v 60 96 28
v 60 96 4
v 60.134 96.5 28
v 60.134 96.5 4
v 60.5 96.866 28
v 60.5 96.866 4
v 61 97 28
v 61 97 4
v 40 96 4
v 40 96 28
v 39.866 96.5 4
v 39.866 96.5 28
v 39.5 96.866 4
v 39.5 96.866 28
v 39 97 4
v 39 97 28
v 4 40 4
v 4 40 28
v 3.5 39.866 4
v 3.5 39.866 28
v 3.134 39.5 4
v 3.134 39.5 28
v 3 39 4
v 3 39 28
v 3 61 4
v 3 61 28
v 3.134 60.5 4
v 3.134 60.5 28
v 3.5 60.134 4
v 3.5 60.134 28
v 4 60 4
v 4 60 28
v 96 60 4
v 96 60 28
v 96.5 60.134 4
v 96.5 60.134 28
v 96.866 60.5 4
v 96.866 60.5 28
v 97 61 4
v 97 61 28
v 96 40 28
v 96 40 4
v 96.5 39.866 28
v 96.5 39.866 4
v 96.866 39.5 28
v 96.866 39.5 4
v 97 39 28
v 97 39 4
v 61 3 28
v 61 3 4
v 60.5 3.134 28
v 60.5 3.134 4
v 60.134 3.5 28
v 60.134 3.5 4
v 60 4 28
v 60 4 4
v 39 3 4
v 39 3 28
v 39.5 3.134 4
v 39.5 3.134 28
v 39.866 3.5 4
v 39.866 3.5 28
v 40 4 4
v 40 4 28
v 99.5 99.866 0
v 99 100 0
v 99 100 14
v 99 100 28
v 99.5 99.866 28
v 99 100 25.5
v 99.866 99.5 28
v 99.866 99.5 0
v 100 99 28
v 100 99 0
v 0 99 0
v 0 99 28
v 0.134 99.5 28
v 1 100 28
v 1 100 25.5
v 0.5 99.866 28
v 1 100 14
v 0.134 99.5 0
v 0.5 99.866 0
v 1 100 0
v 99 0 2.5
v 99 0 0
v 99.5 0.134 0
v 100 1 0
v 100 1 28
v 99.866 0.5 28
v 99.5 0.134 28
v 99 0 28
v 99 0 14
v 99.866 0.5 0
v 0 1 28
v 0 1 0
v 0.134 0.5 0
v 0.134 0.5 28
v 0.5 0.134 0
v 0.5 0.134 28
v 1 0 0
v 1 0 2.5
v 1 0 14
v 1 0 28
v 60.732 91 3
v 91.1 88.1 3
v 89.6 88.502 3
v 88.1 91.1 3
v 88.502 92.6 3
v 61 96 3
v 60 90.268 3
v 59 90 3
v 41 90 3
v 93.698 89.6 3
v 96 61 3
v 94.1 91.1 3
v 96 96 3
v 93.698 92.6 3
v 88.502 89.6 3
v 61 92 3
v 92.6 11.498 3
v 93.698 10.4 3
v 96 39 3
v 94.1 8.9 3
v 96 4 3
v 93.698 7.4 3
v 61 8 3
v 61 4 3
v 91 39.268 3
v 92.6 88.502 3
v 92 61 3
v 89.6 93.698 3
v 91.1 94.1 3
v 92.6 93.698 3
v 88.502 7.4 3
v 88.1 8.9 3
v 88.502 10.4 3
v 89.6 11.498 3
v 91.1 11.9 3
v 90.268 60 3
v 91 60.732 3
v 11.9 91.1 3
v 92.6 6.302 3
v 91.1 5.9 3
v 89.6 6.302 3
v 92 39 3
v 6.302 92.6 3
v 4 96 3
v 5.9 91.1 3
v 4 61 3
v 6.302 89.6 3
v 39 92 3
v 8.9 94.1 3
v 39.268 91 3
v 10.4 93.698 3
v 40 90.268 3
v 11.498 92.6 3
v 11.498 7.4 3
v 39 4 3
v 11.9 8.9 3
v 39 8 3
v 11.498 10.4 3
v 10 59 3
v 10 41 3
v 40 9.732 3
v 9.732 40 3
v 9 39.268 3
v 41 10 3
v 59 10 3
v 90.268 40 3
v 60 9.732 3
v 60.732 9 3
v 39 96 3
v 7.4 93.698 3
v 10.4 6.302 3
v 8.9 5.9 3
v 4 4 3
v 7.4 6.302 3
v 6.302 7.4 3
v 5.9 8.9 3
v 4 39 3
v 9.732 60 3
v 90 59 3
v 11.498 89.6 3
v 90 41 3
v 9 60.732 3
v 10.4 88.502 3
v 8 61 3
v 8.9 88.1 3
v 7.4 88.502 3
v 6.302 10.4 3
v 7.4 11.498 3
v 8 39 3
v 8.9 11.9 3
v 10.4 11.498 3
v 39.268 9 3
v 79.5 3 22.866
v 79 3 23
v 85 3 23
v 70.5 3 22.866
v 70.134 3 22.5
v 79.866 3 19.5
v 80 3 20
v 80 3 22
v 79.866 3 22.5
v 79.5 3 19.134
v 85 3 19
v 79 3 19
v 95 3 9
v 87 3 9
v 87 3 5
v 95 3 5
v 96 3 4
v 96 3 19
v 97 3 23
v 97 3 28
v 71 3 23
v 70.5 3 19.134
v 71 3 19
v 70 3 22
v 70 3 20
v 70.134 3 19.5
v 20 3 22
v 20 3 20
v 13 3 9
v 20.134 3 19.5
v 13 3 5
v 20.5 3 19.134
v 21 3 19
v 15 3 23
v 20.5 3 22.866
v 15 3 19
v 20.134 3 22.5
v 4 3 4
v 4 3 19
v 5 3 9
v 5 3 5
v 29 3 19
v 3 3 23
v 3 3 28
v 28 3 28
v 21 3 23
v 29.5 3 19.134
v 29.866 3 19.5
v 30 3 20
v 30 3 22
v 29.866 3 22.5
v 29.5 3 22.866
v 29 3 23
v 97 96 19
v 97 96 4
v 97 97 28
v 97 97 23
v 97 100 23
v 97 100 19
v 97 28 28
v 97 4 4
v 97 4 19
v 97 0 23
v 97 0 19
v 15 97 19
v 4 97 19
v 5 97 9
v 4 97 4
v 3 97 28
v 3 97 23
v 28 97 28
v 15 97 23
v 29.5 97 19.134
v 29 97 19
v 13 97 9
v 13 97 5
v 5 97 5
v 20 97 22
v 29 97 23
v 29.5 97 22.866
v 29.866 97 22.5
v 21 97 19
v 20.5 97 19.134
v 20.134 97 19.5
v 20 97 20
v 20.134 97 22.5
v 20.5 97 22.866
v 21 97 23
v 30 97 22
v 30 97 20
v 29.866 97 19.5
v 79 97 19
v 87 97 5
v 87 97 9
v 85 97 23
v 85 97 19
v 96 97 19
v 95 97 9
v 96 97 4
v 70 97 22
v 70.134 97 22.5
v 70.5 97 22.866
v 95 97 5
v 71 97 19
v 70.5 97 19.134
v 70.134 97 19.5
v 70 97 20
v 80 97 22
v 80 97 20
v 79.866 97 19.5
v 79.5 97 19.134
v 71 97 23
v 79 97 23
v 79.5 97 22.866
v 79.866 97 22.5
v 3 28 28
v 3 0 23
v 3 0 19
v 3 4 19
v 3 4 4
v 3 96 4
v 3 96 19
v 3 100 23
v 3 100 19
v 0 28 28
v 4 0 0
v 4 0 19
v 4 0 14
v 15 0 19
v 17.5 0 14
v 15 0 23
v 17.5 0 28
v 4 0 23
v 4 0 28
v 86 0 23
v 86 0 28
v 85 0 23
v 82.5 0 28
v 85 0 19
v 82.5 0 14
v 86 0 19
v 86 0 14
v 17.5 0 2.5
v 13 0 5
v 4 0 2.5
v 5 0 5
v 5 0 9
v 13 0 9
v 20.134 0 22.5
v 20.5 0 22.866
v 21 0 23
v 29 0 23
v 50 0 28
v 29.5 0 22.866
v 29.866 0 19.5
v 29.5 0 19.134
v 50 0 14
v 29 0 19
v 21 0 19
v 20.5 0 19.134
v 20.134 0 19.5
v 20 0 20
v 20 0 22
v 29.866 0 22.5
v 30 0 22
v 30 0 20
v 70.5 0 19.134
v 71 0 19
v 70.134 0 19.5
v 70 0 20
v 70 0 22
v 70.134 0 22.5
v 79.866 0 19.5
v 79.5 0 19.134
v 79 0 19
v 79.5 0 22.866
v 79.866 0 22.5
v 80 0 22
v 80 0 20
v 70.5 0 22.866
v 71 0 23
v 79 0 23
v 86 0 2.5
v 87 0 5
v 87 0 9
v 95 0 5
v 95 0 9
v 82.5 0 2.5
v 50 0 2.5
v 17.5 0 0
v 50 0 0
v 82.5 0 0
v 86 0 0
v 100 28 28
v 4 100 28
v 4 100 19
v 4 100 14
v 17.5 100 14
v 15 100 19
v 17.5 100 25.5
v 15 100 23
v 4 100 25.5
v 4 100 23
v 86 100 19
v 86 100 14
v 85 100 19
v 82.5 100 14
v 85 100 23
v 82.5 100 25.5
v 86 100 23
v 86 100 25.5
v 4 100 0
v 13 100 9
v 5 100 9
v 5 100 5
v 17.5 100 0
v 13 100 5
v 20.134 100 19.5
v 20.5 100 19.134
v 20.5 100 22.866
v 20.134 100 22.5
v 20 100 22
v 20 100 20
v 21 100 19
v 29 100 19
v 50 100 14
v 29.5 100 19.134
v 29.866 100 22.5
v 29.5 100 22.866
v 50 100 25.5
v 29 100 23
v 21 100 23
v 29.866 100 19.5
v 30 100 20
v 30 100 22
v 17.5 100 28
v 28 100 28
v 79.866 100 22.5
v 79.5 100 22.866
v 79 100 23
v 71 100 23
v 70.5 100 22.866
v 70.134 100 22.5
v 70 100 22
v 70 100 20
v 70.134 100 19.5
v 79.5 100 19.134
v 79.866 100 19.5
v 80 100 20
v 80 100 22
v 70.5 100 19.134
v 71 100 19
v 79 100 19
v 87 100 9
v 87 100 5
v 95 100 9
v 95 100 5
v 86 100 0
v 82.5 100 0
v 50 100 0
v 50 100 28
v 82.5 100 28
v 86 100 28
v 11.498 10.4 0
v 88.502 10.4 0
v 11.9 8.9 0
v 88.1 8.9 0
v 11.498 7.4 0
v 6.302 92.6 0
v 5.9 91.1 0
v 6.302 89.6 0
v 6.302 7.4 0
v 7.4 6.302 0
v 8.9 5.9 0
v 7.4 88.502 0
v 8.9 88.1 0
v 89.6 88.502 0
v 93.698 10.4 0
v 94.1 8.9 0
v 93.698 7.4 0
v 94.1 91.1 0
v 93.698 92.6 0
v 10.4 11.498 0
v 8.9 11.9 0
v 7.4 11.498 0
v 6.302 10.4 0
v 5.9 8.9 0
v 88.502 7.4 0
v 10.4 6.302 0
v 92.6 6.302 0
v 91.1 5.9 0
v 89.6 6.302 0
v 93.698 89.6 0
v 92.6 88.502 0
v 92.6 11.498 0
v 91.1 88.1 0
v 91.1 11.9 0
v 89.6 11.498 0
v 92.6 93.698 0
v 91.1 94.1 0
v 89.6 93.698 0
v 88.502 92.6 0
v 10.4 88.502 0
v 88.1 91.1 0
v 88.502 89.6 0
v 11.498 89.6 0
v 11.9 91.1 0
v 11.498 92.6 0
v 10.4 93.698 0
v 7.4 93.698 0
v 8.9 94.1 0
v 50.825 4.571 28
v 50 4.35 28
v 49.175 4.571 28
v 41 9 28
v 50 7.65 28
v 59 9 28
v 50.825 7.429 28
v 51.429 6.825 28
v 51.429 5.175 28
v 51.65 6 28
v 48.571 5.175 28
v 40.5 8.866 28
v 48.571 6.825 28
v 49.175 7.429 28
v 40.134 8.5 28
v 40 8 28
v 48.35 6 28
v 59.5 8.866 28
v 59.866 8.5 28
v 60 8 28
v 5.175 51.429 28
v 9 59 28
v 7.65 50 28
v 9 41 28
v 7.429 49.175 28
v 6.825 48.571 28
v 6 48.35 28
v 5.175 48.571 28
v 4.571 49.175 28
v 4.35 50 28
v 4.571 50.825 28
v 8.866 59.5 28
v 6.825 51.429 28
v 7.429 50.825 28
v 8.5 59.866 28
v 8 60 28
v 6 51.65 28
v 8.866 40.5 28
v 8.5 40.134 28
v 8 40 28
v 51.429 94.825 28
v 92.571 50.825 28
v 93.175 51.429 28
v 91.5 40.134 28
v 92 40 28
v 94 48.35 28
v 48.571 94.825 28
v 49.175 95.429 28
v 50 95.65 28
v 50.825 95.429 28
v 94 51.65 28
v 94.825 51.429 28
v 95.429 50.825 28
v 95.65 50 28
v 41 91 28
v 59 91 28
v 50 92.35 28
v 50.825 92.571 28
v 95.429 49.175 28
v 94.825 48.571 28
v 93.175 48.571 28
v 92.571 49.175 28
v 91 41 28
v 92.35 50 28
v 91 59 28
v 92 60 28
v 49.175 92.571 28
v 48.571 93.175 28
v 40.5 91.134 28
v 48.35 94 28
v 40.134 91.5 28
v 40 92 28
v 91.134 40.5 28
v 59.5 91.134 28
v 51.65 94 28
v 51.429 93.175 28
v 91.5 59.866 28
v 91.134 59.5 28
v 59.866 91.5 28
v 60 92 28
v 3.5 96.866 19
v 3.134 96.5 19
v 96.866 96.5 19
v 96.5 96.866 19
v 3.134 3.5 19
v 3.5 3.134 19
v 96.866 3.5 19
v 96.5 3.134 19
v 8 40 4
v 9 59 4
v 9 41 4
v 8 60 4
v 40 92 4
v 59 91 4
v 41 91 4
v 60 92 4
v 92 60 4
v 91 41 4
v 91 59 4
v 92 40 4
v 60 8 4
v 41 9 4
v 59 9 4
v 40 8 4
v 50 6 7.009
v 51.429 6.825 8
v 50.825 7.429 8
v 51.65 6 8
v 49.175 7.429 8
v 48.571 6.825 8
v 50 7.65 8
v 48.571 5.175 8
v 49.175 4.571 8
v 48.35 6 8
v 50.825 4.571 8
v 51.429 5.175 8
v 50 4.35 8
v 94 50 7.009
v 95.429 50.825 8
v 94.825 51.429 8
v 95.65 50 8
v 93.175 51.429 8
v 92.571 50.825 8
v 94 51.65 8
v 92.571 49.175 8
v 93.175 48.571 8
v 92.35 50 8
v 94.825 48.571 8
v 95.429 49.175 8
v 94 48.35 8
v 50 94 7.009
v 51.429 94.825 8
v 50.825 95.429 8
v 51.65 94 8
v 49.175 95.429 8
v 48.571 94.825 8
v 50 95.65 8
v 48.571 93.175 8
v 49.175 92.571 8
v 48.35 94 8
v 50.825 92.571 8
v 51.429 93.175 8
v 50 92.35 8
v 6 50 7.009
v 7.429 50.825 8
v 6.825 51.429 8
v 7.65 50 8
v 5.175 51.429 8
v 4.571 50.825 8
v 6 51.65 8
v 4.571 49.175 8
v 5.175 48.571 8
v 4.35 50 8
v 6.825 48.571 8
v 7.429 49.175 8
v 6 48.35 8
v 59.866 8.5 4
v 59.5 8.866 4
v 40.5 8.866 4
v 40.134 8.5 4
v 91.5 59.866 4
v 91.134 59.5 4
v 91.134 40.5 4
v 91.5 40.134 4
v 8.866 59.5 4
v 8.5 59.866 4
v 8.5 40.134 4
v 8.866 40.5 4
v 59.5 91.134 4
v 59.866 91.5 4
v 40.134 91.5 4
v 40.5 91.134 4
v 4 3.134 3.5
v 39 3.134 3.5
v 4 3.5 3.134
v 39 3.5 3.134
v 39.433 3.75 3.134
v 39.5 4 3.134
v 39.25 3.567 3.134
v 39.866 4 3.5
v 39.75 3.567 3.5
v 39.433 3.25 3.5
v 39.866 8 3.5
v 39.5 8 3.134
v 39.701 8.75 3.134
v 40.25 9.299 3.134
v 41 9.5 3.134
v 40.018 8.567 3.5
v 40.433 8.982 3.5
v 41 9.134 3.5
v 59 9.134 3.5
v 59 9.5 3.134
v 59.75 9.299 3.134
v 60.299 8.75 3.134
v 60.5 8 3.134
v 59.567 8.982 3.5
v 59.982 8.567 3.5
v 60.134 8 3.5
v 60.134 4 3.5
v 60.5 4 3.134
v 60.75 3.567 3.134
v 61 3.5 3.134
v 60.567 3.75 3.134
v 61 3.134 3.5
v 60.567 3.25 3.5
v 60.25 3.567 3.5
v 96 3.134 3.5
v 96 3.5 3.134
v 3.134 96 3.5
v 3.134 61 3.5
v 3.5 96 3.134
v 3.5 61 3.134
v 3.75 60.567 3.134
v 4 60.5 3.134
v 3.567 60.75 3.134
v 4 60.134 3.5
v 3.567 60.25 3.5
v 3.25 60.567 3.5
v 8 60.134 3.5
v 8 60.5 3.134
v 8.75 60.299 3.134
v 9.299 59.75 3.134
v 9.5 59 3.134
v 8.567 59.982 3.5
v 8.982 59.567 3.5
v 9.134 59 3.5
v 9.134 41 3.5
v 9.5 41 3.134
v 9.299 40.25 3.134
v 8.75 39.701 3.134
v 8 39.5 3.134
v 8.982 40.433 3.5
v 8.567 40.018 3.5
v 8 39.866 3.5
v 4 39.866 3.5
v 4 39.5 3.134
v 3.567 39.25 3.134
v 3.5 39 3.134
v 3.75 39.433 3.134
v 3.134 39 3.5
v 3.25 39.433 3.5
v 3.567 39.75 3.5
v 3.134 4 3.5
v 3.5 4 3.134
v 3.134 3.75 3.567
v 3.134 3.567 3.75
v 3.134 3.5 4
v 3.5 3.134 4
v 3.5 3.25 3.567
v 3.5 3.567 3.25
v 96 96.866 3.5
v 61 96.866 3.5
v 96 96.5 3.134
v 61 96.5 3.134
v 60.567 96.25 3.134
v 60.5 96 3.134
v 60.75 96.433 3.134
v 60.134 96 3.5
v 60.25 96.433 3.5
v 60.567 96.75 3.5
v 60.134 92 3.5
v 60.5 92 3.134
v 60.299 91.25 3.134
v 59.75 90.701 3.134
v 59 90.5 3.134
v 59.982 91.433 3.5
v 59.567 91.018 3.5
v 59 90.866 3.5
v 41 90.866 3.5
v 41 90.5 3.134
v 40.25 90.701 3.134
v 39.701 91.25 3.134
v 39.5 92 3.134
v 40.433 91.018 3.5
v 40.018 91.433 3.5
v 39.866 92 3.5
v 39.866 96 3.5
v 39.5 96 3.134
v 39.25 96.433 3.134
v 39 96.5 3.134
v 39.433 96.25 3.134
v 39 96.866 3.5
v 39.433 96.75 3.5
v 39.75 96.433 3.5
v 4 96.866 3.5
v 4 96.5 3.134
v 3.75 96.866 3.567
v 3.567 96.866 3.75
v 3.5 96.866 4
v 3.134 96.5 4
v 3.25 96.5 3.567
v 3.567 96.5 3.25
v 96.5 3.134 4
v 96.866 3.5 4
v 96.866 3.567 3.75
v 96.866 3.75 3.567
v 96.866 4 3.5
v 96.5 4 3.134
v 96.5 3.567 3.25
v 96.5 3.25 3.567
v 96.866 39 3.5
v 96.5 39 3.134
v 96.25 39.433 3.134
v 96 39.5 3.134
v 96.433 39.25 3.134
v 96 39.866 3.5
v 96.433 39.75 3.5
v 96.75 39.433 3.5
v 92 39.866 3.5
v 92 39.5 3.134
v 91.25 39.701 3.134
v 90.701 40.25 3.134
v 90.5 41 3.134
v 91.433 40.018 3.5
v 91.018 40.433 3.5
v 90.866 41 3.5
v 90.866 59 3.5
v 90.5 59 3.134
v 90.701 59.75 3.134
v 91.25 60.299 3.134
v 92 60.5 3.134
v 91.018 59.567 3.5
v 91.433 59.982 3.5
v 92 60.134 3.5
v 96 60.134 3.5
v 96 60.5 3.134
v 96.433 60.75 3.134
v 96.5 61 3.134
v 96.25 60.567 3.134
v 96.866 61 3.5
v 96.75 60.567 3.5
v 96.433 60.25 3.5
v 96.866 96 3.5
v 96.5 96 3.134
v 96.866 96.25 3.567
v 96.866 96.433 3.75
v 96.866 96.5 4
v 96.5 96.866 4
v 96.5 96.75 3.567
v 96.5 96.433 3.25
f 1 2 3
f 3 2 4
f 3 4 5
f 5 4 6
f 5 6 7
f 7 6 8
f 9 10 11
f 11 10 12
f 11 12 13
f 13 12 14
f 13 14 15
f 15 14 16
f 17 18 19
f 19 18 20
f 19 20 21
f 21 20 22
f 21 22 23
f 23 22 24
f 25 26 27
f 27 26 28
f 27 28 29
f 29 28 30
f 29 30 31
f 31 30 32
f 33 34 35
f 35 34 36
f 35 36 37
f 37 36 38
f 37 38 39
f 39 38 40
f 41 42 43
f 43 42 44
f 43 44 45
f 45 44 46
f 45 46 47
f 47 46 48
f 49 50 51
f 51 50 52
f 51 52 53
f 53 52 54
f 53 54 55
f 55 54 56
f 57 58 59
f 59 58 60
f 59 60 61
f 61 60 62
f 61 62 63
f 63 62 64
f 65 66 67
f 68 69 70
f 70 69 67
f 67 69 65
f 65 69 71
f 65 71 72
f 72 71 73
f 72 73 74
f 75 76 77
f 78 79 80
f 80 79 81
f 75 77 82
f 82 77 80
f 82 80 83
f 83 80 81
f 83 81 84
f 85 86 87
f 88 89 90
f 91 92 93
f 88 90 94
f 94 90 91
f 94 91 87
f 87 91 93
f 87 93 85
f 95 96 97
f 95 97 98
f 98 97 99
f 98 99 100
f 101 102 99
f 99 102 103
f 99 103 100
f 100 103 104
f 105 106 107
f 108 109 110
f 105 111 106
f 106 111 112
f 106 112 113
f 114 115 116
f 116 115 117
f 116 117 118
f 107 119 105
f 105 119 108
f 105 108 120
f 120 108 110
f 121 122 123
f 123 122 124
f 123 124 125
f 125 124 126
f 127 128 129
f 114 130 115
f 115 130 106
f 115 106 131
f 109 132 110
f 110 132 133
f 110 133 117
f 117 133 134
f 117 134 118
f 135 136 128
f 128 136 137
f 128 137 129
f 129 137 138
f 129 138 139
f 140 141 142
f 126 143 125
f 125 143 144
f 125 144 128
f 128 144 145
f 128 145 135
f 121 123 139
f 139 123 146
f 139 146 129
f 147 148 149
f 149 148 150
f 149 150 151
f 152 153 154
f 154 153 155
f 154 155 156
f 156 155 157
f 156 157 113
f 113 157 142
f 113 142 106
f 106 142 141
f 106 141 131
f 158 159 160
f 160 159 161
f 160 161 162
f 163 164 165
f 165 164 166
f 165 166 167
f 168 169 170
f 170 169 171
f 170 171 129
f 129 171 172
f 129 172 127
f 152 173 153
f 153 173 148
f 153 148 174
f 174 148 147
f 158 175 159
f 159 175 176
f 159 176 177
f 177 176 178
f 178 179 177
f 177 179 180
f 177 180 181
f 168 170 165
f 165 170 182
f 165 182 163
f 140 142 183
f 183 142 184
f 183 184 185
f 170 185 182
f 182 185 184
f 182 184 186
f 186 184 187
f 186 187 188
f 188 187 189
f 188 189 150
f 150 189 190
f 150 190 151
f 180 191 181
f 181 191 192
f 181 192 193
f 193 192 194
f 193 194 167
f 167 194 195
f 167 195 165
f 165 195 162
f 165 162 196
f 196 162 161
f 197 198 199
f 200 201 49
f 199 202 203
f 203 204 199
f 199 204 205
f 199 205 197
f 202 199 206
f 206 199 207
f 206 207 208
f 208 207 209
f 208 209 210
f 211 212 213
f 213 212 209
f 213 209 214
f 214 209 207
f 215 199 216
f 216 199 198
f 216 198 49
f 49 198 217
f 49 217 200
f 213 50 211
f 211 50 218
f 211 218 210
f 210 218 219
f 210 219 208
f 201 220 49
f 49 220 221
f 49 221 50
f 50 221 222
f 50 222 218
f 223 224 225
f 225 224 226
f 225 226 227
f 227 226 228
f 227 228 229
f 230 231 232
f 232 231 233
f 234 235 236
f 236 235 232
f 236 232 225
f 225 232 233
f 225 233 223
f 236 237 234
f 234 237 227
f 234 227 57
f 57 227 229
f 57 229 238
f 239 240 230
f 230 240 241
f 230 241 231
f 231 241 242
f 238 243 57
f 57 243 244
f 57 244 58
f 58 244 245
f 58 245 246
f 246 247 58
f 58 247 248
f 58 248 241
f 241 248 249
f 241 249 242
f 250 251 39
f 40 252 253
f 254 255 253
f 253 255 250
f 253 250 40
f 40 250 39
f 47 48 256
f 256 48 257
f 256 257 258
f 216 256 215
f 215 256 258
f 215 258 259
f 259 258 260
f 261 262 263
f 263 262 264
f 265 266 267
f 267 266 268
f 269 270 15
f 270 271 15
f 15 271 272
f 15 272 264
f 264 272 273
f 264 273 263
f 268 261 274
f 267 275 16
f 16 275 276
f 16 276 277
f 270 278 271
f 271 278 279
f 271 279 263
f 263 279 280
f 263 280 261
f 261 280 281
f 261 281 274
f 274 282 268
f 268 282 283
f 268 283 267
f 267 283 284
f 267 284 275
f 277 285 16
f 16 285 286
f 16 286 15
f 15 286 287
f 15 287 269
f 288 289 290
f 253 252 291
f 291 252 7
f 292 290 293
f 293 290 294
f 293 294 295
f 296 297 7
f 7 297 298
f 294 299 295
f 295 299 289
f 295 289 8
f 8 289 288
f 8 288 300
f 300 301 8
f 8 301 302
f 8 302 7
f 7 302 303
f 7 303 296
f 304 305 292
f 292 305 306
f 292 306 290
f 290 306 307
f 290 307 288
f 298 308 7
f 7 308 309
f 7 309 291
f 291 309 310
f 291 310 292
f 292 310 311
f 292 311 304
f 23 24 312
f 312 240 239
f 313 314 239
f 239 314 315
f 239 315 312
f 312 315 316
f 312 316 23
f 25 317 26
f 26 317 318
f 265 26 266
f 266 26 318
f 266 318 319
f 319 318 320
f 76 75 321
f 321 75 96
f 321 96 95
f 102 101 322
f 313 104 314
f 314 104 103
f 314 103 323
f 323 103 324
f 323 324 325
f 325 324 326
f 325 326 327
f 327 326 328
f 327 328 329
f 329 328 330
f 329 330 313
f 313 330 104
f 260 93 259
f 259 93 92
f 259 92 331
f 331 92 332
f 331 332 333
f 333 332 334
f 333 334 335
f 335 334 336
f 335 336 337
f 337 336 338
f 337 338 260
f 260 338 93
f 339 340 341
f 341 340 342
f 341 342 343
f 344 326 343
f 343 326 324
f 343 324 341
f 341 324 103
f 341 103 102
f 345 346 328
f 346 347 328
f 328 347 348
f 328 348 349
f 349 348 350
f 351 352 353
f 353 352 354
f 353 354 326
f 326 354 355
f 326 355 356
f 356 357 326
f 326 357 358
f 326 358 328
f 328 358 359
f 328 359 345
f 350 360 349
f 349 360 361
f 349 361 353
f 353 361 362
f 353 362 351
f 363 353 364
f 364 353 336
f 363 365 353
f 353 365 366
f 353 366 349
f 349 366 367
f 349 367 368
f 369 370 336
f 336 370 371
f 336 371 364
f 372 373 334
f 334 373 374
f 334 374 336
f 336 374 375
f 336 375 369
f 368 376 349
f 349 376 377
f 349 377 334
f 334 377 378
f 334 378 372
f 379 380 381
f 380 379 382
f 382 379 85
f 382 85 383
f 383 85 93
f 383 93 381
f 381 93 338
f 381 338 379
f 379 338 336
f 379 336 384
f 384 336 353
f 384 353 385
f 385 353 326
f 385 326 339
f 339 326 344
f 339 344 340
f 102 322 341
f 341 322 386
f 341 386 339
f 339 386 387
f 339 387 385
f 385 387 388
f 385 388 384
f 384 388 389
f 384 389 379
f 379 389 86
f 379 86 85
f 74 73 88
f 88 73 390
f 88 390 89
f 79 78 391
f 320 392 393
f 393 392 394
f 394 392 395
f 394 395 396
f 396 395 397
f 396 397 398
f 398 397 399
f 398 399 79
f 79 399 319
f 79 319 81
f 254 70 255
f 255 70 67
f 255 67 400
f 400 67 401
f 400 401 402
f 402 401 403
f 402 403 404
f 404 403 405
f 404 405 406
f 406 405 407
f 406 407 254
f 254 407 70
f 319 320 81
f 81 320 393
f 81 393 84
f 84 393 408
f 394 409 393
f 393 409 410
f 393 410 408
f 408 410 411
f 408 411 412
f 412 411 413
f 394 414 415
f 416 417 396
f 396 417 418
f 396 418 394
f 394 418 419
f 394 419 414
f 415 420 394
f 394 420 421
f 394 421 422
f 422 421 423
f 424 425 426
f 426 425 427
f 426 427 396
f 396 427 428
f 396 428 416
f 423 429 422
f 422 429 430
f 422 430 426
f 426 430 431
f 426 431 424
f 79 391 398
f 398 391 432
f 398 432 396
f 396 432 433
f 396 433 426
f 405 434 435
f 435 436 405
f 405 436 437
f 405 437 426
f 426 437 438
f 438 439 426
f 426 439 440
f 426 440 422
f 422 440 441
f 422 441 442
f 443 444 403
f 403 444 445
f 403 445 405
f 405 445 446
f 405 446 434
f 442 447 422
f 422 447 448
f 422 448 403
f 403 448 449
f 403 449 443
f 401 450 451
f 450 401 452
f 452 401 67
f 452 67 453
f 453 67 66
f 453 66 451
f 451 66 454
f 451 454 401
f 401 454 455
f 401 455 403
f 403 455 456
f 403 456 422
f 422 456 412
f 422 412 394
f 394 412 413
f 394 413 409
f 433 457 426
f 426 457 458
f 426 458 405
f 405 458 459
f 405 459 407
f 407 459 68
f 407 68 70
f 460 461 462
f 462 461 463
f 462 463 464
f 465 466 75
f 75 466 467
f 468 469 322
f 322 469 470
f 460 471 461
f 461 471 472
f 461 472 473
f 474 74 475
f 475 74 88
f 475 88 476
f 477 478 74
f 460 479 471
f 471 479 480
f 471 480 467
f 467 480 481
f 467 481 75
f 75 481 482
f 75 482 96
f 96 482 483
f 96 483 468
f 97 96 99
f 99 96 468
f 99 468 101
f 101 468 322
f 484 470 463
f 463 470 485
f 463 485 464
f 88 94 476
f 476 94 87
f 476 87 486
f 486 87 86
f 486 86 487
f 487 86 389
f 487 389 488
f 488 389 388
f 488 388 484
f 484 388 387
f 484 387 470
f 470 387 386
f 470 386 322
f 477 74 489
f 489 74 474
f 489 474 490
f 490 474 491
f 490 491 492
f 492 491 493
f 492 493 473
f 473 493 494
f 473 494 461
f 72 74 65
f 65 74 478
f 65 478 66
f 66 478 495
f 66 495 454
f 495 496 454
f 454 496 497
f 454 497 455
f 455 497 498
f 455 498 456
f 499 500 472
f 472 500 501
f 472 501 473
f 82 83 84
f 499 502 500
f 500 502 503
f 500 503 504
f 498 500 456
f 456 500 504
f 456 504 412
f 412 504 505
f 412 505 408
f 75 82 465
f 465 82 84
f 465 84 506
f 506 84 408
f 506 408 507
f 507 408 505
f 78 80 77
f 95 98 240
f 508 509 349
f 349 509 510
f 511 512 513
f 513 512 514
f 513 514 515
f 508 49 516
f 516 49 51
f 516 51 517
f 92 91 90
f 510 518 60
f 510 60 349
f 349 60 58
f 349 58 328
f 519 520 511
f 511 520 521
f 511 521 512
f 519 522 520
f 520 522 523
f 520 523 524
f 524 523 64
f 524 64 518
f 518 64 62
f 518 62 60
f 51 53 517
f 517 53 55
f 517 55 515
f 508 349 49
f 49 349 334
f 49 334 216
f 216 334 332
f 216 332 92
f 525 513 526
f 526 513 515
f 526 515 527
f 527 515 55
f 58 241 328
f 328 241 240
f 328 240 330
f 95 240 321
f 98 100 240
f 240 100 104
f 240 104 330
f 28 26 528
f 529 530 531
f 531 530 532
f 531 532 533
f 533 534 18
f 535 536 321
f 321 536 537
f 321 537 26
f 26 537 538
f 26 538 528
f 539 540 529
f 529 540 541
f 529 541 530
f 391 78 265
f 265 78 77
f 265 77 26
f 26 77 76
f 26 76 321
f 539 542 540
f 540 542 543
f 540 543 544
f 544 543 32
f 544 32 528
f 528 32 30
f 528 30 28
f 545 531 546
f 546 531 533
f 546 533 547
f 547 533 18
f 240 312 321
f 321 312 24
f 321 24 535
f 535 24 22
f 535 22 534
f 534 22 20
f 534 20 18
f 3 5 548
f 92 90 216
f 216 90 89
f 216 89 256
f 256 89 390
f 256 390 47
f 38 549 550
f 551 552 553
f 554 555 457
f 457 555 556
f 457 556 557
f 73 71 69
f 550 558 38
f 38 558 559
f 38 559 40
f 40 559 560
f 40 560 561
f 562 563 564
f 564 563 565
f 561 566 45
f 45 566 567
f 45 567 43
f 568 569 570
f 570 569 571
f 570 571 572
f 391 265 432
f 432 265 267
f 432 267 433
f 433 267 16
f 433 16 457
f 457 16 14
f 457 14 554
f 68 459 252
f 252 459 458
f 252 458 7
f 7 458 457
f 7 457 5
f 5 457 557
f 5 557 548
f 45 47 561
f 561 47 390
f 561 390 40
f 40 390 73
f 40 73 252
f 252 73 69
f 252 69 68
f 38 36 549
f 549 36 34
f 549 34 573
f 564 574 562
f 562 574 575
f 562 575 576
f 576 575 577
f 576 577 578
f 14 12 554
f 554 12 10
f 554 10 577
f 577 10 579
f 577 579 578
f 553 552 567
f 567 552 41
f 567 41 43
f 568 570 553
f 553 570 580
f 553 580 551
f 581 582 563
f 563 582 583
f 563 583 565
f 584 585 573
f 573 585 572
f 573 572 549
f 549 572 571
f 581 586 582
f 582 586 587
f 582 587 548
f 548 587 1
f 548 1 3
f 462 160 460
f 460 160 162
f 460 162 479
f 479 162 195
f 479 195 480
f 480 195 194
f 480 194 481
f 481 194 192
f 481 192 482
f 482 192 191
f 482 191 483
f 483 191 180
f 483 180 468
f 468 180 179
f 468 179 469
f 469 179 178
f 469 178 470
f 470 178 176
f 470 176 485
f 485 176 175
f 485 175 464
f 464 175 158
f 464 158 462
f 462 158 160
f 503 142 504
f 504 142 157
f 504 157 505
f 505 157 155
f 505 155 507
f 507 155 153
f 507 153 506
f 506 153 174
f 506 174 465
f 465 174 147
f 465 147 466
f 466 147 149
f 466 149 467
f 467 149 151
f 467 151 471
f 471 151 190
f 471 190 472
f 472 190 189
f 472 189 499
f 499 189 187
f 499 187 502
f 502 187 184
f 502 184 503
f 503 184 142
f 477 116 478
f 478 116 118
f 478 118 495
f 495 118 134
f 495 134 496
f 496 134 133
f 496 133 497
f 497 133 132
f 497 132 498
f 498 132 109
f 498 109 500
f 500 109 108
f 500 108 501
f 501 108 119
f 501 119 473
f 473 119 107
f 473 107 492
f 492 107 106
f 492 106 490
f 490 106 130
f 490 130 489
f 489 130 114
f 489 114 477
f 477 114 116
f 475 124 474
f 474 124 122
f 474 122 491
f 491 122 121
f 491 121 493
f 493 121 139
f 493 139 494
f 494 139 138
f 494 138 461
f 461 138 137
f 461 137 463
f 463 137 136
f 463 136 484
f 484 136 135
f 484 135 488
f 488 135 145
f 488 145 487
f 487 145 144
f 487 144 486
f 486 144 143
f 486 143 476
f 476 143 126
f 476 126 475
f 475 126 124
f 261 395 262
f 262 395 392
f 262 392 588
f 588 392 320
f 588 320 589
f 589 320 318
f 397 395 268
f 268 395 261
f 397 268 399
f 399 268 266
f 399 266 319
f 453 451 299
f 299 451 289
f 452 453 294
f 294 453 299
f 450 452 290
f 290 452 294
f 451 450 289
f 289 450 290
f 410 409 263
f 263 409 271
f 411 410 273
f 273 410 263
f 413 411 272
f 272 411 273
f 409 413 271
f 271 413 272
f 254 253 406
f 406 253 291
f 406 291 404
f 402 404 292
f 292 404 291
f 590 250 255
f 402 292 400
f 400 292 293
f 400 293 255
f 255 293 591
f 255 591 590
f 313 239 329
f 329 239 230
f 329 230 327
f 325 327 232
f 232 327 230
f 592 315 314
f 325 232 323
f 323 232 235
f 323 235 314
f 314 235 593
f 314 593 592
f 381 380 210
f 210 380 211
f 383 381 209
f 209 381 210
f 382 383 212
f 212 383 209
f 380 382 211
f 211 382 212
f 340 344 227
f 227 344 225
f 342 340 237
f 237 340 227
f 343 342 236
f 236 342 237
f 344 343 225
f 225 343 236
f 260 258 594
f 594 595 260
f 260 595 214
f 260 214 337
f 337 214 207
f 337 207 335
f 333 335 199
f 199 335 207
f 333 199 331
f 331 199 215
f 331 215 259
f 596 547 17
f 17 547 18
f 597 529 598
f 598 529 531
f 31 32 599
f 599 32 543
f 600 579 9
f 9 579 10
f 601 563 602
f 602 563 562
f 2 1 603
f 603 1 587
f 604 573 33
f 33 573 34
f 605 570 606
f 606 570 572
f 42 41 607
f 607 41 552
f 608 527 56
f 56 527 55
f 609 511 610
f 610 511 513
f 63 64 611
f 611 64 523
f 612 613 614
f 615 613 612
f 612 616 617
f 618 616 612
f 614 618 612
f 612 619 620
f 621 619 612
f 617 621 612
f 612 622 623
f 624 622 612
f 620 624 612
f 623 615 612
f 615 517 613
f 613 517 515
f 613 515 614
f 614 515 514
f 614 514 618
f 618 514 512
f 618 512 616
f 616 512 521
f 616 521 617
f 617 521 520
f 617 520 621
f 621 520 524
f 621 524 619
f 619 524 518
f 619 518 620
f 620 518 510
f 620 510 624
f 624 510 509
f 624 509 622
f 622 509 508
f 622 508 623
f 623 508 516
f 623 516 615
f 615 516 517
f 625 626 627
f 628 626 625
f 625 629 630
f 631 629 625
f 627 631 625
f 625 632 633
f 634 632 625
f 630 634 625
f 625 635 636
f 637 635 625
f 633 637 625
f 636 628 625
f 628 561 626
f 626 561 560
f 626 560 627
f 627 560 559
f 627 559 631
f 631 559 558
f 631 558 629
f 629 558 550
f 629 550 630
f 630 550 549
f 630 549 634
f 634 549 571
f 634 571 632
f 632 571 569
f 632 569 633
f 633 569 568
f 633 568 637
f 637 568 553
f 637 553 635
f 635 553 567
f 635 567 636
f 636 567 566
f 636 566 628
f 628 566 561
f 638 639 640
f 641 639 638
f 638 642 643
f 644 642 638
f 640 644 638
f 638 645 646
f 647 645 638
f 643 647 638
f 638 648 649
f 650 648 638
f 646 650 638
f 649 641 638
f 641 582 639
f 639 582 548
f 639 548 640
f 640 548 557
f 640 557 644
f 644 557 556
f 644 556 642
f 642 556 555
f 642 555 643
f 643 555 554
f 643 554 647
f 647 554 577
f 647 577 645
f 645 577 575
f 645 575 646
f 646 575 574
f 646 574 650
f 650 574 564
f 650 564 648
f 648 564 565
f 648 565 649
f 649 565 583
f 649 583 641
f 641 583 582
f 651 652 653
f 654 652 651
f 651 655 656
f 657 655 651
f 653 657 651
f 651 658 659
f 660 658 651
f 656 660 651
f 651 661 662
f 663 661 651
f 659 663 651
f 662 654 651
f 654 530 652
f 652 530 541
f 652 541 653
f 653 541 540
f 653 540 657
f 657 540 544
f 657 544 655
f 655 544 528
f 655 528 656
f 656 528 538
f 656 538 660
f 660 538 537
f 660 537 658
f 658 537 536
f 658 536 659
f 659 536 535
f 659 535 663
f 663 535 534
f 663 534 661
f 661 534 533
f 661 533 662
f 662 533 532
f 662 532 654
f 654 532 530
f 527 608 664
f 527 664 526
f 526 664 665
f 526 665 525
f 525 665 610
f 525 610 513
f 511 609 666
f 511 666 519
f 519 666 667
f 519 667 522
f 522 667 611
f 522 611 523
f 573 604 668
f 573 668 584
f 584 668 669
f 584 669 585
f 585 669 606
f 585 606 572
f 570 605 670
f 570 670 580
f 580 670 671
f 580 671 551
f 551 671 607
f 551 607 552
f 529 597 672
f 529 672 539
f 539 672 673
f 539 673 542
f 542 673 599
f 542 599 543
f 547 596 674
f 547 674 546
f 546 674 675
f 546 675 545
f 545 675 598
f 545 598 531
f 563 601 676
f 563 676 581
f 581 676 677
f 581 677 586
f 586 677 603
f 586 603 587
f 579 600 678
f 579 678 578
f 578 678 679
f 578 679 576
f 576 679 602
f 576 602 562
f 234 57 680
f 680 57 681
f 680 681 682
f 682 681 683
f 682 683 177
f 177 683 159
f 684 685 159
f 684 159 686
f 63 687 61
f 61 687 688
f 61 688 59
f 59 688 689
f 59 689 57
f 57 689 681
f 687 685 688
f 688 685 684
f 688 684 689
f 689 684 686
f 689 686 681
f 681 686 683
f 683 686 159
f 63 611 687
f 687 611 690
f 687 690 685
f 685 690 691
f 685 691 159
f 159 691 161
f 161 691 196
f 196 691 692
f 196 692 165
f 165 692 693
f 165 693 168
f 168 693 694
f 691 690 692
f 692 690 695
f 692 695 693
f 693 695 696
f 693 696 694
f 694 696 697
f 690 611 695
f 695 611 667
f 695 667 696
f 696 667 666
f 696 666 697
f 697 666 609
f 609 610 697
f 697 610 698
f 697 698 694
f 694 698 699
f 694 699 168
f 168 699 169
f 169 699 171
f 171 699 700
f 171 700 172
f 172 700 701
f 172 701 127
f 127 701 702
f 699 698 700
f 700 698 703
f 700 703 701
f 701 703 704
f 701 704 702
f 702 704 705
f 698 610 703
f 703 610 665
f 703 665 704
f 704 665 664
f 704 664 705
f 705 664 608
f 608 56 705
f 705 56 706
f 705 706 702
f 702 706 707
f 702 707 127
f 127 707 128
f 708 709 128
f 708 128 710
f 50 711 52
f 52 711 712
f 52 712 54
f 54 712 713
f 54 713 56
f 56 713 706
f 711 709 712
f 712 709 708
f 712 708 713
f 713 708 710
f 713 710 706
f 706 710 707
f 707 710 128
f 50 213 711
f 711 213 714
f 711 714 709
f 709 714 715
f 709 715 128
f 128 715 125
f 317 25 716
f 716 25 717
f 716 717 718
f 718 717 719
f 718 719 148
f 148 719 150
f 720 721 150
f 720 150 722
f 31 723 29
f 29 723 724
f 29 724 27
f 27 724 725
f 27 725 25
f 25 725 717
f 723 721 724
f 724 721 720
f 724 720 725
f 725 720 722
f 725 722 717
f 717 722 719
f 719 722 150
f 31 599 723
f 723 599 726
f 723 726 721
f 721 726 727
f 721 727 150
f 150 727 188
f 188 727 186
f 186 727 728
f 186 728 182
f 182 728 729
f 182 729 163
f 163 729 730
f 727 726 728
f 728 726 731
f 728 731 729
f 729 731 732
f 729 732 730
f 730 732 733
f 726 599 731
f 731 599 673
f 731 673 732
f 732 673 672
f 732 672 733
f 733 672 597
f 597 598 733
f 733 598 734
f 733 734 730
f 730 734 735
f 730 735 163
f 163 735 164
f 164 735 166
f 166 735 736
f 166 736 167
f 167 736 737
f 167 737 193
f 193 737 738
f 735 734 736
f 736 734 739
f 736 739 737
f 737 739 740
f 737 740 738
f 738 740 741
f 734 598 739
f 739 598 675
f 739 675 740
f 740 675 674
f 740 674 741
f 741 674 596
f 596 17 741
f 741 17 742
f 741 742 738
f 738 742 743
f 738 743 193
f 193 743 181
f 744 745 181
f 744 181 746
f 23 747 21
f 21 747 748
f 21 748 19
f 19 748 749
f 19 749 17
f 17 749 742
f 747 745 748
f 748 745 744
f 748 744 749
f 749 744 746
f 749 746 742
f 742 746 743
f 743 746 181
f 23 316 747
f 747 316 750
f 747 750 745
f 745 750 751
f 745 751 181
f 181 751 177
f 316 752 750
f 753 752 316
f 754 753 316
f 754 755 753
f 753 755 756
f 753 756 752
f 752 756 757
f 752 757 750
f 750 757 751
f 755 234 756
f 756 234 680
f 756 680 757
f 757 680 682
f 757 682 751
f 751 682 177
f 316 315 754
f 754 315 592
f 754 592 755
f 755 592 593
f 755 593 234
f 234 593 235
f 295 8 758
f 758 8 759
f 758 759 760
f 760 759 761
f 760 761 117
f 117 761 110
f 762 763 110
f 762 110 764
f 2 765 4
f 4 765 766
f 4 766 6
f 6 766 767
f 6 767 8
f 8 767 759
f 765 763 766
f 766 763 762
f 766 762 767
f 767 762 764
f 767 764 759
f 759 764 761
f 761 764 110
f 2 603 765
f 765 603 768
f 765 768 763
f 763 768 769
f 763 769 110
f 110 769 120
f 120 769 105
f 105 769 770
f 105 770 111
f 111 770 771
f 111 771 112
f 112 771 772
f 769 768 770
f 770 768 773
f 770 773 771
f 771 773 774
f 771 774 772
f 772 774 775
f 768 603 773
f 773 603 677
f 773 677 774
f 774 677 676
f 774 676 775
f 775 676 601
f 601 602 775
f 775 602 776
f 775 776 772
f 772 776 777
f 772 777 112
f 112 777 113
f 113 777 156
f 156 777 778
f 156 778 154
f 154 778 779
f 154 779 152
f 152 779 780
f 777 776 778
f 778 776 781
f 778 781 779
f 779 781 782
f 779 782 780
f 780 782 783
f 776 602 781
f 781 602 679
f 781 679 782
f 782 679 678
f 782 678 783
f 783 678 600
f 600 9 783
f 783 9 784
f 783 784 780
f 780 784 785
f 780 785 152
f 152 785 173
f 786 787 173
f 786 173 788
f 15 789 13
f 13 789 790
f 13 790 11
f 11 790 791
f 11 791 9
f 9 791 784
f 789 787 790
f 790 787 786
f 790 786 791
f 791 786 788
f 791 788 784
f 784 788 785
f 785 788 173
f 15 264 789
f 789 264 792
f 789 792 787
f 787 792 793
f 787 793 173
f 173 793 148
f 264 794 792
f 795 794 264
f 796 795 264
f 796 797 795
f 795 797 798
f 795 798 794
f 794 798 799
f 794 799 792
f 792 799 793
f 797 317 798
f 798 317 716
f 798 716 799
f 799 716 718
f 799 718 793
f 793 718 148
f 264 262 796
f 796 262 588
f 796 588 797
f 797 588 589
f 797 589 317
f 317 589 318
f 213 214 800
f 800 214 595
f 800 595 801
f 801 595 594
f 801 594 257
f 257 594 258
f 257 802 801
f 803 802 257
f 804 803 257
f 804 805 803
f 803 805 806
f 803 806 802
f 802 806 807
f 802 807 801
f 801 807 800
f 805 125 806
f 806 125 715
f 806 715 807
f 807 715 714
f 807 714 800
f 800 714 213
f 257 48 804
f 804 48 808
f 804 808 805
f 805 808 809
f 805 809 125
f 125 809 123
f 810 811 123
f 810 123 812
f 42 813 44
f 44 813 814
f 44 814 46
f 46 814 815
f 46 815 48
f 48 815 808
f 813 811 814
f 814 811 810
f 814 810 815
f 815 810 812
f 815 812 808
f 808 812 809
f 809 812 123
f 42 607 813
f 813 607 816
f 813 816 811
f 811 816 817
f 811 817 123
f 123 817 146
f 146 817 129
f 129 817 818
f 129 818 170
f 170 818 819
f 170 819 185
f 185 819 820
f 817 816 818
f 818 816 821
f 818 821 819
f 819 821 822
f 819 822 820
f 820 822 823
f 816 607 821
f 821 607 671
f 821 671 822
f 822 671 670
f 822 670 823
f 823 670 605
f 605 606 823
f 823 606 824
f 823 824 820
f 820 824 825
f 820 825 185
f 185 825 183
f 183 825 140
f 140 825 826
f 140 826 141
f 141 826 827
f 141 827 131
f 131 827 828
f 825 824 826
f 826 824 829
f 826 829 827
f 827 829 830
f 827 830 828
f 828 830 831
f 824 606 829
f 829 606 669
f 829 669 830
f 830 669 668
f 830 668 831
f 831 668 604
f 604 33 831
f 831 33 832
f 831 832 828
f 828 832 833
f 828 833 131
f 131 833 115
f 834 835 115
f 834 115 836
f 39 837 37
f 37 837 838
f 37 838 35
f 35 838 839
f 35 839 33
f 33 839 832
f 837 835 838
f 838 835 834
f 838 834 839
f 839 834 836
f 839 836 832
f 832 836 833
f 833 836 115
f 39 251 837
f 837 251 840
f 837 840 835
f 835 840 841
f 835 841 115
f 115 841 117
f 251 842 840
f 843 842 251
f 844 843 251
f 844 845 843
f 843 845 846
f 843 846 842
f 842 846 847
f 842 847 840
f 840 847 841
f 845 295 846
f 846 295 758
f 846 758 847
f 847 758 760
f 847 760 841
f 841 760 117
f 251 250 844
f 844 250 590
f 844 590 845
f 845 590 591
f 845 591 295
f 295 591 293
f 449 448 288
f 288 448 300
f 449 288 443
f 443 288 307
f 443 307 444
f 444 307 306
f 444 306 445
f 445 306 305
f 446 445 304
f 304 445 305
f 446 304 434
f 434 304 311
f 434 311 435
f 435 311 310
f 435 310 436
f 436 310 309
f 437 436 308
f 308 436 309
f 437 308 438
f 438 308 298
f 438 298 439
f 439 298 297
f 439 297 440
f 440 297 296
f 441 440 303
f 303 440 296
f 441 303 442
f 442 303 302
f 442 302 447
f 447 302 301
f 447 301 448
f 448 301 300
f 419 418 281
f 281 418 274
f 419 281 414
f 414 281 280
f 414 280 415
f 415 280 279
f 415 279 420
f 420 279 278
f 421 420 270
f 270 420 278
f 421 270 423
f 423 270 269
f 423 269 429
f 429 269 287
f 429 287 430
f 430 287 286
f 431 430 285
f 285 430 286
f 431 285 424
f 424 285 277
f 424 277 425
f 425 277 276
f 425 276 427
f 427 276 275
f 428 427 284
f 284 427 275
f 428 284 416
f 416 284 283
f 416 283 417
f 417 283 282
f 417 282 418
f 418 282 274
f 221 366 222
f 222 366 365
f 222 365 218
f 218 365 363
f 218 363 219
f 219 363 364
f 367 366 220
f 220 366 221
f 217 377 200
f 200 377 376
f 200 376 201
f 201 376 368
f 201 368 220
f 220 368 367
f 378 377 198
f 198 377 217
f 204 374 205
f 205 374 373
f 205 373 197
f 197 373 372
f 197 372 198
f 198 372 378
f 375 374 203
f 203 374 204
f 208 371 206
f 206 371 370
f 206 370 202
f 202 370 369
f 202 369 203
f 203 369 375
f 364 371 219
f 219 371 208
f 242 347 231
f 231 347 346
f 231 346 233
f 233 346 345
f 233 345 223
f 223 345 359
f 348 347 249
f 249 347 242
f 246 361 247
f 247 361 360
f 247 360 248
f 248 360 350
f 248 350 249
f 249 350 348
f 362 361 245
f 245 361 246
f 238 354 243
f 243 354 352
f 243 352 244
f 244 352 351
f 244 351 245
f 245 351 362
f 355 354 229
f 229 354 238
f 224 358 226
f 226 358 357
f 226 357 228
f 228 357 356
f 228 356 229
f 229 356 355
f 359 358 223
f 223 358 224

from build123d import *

# Parameters (mm, degrees)
SKETCH1_W                 = 100
SKETCH1_H                 = 100
BOSS_EXTRUDE1_DEPTH       = 3
SKETCH2_W                 = 100
SKETCH2_H                 = 100
SKETCH2_W_2               = 94
SKETCH2_H_2               = 94
BOSS_EXTRUDE2_DEPTH       = 25
SKETCH5_R                 = 3
CUT_EXTRUDE1_DEPTH        = 146.107718609
SKETCH6_W                 = 12
SKETCH6_H                 = 4
SKETCH6_W_2               = 8
CUT_EXTRUDE3_DEPTH        = 145.166570328
SKETCH7_W                 = 6
SKETCH7_H                 = 20
SKETCH7_W_2               = 20
SKETCH7_H_2               = 6
BOSS_EXTRUDE4_DEPTH       = 25
M4X0_7_TAPPED_HOLE1_D     = 3.3
M4X0_7_TAPPED_HOLE1_DEPTH = 20
M4X0_7_TAPPED_HOLE1_TIP   = 0.991420021
FILLET1_R                 = 1
FILLET2_R                 = 1
FILLET3_R                 = 1
FILLET4_R                 = 1
FILLET5_R                 = 1
FILLET6_R                 = 1
FILLET7_R                 = 1
FILLET8_R                 = 1
FILLET9_R                 = 1
FILLET10_R                = 1
FILLET11_R                = 1
FILLET12_R                = 1
FILLET22_R                = 1
FILLET23_R                = 1
FILLET24_R                = 1
FILLET25_R                = 1
FILLET26_R                = 1
FILLET27_R                = 1
FILLET28_R                = 1
FILLET29_R                = 1
FILLET30_R                = 1
FILLET31_R                = 1
FILLET32_R                = 1
FILLET33_R                = 1
CUT_EXTRUDE5_DEPTH        = 145.166570328


with BuildPart() as part:
    # Sketch1 → Boss-Extrude1 (new body)
    with BuildSketch(Plane.XY):
        with Locations((50, 50)):
            Rectangle(SKETCH1_W, SKETCH1_H)
    extrude(amount=BOSS_EXTRUDE1_DEPTH)

    # Sketch2 → Boss-Extrude2 (add)
    with BuildSketch(Plane.XY.offset(3)):
        with Locations((50, 50)):
            Rectangle(SKETCH2_W, SKETCH2_H)
        with Locations((50, 50)):
            Rectangle(SKETCH2_W_2, SKETCH2_H_2, mode=Mode.SUBTRACT)
    extrude(amount=BOSS_EXTRUDE2_DEPTH)

    # Sketch5 → Cut-Extrude1 (cut, through all)
    with BuildSketch(Plane.XY.offset(32.5)):
        with Locations((8.9, 8.9)):
            Circle(SKETCH5_R)
        with Locations((8.9, 91.1)):
            Circle(SKETCH5_R)
        with Locations((91.1, 91.1)):
            Circle(SKETCH5_R)
        with Locations((91.1, 8.9)):
            Circle(SKETCH5_R)
    extrude(amount=-CUT_EXTRUDE1_DEPTH, mode=Mode.SUBTRACT)

    # Sketch6 → Cut-Extrude3 (cut, through all)
    with BuildSketch(Plane.XZ):
        with Locations((9, 21)):
            Rectangle(SKETCH6_W, SKETCH6_H)
        with Locations((91, 21)):
            Rectangle(SKETCH6_W, SKETCH6_H)
        with Locations((9, 7)):
            Rectangle(SKETCH6_W_2, SKETCH6_H)
        with Locations((91, 7)):
            Rectangle(SKETCH6_W_2, SKETCH6_H)
    extrude(amount=-CUT_EXTRUDE3_DEPTH, mode=Mode.SUBTRACT)

    # Sketch7 → Boss-Extrude4 (add)
    with BuildSketch(Plane.XY.offset(3)):
        with Locations((6, 50)):
            Rectangle(SKETCH7_W, SKETCH7_H)
        with Locations((50, 94)):
            Rectangle(SKETCH7_W_2, SKETCH7_H_2)
        with Locations((94, 50)):
            Rectangle(SKETCH7_W, SKETCH7_H)
        with Locations((50, 6)):
            Rectangle(SKETCH7_W_2, SKETCH7_H_2)
    extrude(amount=BOSS_EXTRUDE4_DEPTH)

    # M4x0.7 Tapped Hole1
    with Locations(Plane.XY.offset(28)):
        with Locations((6, 50), (50, 94), (94, 50), (50, 6)):
            Hole(M4X0_7_TAPPED_HOLE1_D / 2, depth=M4X0_7_TAPPED_HOLE1_DEPTH)
            with Locations((0, 0, -(M4X0_7_TAPPED_HOLE1_DEPTH + M4X0_7_TAPPED_HOLE1_TIP / 2))):  # 118° drill point
                Cone(0, M4X0_7_TAPPED_HOLE1_D / 2, M4X0_7_TAPPED_HOLE1_TIP, mode=Mode.SUBTRACT)

    # Fillet1
    fillet1_edges = [part.edges().sort_by_distance(p)[0] for p in [
        (0, 0, 14),
    ]]
    fillet(fillet1_edges, radius=FILLET1_R)

    # Fillet2
    fillet2_edges = [part.edges().sort_by_distance(p)[0] for p in [
        (100, 0, 14),
    ]]
    fillet(fillet2_edges, radius=FILLET2_R)

    # Fillet3
    fillet3_edges = [part.edges().sort_by_distance(p)[0] for p in [
        (0, 100, 14),
    ]]
    fillet(fillet3_edges, radius=FILLET3_R)

    # Fillet4
    fillet4_edges = [part.edges().sort_by_distance(p)[0] for p in [
        (100, 100, 14),
    ]]
    fillet(fillet4_edges, radius=FILLET4_R)

    # Fillet5
    fillet5_edges = [part.edges().sort_by_distance(p)[0] for p in [
        (40, 3, 15.5),
    ]]
    fillet(fillet5_edges, radius=FILLET5_R)

    # Fillet6
    fillet6_edges = [part.edges().sort_by_distance(p)[0] for p in [
        (60, 3, 15.5),
    ]]
    fillet(fillet6_edges, radius=FILLET6_R)

    # Fillet7
    fillet7_edges = [part.edges().sort_by_distance(p)[0] for p in [
        (97, 40, 15.5),
    ]]
    fillet(fillet7_edges, radius=FILLET7_R)

    # Fillet8
    fillet8_edges = [part.edges().sort_by_distance(p)[0] for p in [
        (97, 60, 15.5),
    ]]
    fillet(fillet8_edges, radius=FILLET8_R)

    # Fillet9
    fillet9_edges = [part.edges().sort_by_distance(p)[0] for p in [
        (3, 60, 15.5),
    ]]
    fillet(fillet9_edges, radius=FILLET9_R)

    # Fillet10
    fillet10_edges = [part.edges().sort_by_distance(p)[0] for p in [
        (3, 40, 15.5),
    ]]
    fillet(fillet10_edges, radius=FILLET10_R)

    # Fillet11
    fillet11_edges = [part.edges().sort_by_distance(p)[0] for p in [
        (40, 97, 15.5),
    ]]
    fillet(fillet11_edges, radius=FILLET11_R)

    # Fillet12
    fillet12_edges = [part.edges().sort_by_distance(p)[0] for p in [
        (60, 97, 15.5),
    ]]
    fillet(fillet12_edges, radius=FILLET12_R)

    # Fillet22
    fillet22_edges = [part.edges().sort_by_distance(p)[0] for p in [
        (60, 9, 15.5),
    ]]
    fillet(fillet22_edges, radius=FILLET22_R)

    # Fillet23
    fillet23_edges = [part.edges().sort_by_distance(p)[0] for p in [
        (40, 9, 15.5),
    ]]
    fillet(fillet23_edges, radius=FILLET23_R)

    # Fillet24
    fillet24_edges = [part.edges().sort_by_distance(p)[0] for p in [
        (91, 60, 15.5),
    ]]
    fillet(fillet24_edges, radius=FILLET24_R)

    # Fillet25
    fillet25_edges = [part.edges().sort_by_distance(p)[0] for p in [
        (91, 40, 15.5),
    ]]
    fillet(fillet25_edges, radius=FILLET25_R)

    # Fillet26
    fillet26_edges = [part.edges().sort_by_distance(p)[0] for p in [
        (9, 60, 15.5),
    ]]
    fillet(fillet26_edges, radius=FILLET26_R)

    # Fillet27
    fillet27_edges = [part.edges().sort_by_distance(p)[0] for p in [
        (9, 40, 15.5),
    ]]
    fillet(fillet27_edges, radius=FILLET27_R)

    # Fillet28
    fillet28_edges = [part.edges().sort_by_distance(p)[0] for p in [
        (60, 91, 15.5),
    ]]
    fillet(fillet28_edges, radius=FILLET28_R)

    # Fillet29
    fillet29_edges = [part.edges().sort_by_distance(p)[0] for p in [
        (40, 91, 15.5),
    ]]
    fillet(fillet29_edges, radius=FILLET29_R)

    # Fillet30
    fillet30_edges = [part.edges().sort_by_distance(p)[0] for p in [
        (21, 3, 3),
        (39.707106781, 3.292893219, 3),
        (60, 6, 3),
        (79, 3, 3),
        (60.292893219, 3.292893219, 3),
        (50, 9, 3),
        (59.707106781, 8.707106781, 3),
        (40, 6, 3),
        (40.292893219, 8.707106781, 3),
    ]]
    fillet(fillet30_edges, radius=FILLET30_R)

    # Fillet31
    fillet31_edges = [part.edges().sort_by_distance(p)[0] for p in [
        (3, 79, 3),
        (3.292893219, 60.292893219, 3),
        (3, 21.5, 3),
        (6, 40, 3),
        (3.292893219, 39.707106781, 3),
        (6, 60, 3),
        (8.707106781, 59.707106781, 3),
        (9, 50, 3),
        (8.707106781, 40.292893219, 3),
        (3, 3.292893219, 3.292893219),
        (3, 3, 11.5),
    ]]
    fillet(fillet31_edges, radius=FILLET31_R)

    # Fillet32
    fillet32_edges = [part.edges().sort_by_distance(p)[0] for p in [
        (79, 97, 3),
        (21.5, 97, 3),
        (40, 94, 3),
        (39.707106781, 96.707106781, 3),
        (60.292893219, 96.707106781, 3),
        (60, 94, 3),
        (59.707106781, 91.292893219, 3),
        (50, 91, 3),
        (40.292893219, 91.292893219, 3),
        (3.292893219, 97, 3.292893219),
        (3, 97, 11.5),
    ]]
    fillet(fillet32_edges, radius=FILLET32_R)

    # Fillet33
    fillet33_edges = [part.edges().sort_by_distance(p)[0] for p in [
        (96.707106781, 39.707106781, 3),
        (97, 78.5, 3),
        (94, 60, 3),
        (96.707106781, 60.292893219, 3),
        (91, 50, 3),
        (91.292893219, 59.707106781, 3),
        (94, 40, 3),
        (91.292893219, 40.292893219, 3),
        (97, 21.5, 3),
        (97, 3.292893219, 3.292893219),
        (97, 97, 11.5),
        (97, 96.707106781, 3.292893219),
        (97, 3, 11.5),
    ]]
    fillet(fillet33_edges, radius=FILLET33_R)

    # Sketch12 → Cut-Extrude5 (cut, through all)
    with BuildSketch(Plane.XZ):
        with BuildLine():
            Line((21, 19), (29, 19))
            ThreePointArc((29, 19), (29.707106781, 19.292893219), (30, 20))
            Line((30, 20), (30, 22))
            ThreePointArc((30, 22), (29.707106781, 22.707106781), (29, 23))
            Line((29, 23), (21, 23))
            ThreePointArc((21, 23), (20.292893219, 22.707106781), (20, 22))
            Line((20, 22), (20, 20))
            ThreePointArc((20, 20), (20.292893219, 19.292893219), (21, 19))
        make_face()
        with BuildLine():
            Line((71, 19), (79, 19))
            ThreePointArc((79, 19), (79.707106781, 19.292893219), (80, 20))
            Line((80, 20), (80, 22))
            ThreePointArc((80, 22), (79.707106781, 22.707106781), (79, 23))
            Line((79, 23), (71, 23))
            ThreePointArc((71, 23), (70.292893219, 22.707106781), (70, 22))
            Line((70, 22), (70, 20))
            ThreePointArc((70, 20), (70.292893219, 19.292893219), (71, 19))
        make_face()
    extrude(amount=-CUT_EXTRUDE5_DEPTH, mode=Mode.SUBTRACT)


solid = part.part
